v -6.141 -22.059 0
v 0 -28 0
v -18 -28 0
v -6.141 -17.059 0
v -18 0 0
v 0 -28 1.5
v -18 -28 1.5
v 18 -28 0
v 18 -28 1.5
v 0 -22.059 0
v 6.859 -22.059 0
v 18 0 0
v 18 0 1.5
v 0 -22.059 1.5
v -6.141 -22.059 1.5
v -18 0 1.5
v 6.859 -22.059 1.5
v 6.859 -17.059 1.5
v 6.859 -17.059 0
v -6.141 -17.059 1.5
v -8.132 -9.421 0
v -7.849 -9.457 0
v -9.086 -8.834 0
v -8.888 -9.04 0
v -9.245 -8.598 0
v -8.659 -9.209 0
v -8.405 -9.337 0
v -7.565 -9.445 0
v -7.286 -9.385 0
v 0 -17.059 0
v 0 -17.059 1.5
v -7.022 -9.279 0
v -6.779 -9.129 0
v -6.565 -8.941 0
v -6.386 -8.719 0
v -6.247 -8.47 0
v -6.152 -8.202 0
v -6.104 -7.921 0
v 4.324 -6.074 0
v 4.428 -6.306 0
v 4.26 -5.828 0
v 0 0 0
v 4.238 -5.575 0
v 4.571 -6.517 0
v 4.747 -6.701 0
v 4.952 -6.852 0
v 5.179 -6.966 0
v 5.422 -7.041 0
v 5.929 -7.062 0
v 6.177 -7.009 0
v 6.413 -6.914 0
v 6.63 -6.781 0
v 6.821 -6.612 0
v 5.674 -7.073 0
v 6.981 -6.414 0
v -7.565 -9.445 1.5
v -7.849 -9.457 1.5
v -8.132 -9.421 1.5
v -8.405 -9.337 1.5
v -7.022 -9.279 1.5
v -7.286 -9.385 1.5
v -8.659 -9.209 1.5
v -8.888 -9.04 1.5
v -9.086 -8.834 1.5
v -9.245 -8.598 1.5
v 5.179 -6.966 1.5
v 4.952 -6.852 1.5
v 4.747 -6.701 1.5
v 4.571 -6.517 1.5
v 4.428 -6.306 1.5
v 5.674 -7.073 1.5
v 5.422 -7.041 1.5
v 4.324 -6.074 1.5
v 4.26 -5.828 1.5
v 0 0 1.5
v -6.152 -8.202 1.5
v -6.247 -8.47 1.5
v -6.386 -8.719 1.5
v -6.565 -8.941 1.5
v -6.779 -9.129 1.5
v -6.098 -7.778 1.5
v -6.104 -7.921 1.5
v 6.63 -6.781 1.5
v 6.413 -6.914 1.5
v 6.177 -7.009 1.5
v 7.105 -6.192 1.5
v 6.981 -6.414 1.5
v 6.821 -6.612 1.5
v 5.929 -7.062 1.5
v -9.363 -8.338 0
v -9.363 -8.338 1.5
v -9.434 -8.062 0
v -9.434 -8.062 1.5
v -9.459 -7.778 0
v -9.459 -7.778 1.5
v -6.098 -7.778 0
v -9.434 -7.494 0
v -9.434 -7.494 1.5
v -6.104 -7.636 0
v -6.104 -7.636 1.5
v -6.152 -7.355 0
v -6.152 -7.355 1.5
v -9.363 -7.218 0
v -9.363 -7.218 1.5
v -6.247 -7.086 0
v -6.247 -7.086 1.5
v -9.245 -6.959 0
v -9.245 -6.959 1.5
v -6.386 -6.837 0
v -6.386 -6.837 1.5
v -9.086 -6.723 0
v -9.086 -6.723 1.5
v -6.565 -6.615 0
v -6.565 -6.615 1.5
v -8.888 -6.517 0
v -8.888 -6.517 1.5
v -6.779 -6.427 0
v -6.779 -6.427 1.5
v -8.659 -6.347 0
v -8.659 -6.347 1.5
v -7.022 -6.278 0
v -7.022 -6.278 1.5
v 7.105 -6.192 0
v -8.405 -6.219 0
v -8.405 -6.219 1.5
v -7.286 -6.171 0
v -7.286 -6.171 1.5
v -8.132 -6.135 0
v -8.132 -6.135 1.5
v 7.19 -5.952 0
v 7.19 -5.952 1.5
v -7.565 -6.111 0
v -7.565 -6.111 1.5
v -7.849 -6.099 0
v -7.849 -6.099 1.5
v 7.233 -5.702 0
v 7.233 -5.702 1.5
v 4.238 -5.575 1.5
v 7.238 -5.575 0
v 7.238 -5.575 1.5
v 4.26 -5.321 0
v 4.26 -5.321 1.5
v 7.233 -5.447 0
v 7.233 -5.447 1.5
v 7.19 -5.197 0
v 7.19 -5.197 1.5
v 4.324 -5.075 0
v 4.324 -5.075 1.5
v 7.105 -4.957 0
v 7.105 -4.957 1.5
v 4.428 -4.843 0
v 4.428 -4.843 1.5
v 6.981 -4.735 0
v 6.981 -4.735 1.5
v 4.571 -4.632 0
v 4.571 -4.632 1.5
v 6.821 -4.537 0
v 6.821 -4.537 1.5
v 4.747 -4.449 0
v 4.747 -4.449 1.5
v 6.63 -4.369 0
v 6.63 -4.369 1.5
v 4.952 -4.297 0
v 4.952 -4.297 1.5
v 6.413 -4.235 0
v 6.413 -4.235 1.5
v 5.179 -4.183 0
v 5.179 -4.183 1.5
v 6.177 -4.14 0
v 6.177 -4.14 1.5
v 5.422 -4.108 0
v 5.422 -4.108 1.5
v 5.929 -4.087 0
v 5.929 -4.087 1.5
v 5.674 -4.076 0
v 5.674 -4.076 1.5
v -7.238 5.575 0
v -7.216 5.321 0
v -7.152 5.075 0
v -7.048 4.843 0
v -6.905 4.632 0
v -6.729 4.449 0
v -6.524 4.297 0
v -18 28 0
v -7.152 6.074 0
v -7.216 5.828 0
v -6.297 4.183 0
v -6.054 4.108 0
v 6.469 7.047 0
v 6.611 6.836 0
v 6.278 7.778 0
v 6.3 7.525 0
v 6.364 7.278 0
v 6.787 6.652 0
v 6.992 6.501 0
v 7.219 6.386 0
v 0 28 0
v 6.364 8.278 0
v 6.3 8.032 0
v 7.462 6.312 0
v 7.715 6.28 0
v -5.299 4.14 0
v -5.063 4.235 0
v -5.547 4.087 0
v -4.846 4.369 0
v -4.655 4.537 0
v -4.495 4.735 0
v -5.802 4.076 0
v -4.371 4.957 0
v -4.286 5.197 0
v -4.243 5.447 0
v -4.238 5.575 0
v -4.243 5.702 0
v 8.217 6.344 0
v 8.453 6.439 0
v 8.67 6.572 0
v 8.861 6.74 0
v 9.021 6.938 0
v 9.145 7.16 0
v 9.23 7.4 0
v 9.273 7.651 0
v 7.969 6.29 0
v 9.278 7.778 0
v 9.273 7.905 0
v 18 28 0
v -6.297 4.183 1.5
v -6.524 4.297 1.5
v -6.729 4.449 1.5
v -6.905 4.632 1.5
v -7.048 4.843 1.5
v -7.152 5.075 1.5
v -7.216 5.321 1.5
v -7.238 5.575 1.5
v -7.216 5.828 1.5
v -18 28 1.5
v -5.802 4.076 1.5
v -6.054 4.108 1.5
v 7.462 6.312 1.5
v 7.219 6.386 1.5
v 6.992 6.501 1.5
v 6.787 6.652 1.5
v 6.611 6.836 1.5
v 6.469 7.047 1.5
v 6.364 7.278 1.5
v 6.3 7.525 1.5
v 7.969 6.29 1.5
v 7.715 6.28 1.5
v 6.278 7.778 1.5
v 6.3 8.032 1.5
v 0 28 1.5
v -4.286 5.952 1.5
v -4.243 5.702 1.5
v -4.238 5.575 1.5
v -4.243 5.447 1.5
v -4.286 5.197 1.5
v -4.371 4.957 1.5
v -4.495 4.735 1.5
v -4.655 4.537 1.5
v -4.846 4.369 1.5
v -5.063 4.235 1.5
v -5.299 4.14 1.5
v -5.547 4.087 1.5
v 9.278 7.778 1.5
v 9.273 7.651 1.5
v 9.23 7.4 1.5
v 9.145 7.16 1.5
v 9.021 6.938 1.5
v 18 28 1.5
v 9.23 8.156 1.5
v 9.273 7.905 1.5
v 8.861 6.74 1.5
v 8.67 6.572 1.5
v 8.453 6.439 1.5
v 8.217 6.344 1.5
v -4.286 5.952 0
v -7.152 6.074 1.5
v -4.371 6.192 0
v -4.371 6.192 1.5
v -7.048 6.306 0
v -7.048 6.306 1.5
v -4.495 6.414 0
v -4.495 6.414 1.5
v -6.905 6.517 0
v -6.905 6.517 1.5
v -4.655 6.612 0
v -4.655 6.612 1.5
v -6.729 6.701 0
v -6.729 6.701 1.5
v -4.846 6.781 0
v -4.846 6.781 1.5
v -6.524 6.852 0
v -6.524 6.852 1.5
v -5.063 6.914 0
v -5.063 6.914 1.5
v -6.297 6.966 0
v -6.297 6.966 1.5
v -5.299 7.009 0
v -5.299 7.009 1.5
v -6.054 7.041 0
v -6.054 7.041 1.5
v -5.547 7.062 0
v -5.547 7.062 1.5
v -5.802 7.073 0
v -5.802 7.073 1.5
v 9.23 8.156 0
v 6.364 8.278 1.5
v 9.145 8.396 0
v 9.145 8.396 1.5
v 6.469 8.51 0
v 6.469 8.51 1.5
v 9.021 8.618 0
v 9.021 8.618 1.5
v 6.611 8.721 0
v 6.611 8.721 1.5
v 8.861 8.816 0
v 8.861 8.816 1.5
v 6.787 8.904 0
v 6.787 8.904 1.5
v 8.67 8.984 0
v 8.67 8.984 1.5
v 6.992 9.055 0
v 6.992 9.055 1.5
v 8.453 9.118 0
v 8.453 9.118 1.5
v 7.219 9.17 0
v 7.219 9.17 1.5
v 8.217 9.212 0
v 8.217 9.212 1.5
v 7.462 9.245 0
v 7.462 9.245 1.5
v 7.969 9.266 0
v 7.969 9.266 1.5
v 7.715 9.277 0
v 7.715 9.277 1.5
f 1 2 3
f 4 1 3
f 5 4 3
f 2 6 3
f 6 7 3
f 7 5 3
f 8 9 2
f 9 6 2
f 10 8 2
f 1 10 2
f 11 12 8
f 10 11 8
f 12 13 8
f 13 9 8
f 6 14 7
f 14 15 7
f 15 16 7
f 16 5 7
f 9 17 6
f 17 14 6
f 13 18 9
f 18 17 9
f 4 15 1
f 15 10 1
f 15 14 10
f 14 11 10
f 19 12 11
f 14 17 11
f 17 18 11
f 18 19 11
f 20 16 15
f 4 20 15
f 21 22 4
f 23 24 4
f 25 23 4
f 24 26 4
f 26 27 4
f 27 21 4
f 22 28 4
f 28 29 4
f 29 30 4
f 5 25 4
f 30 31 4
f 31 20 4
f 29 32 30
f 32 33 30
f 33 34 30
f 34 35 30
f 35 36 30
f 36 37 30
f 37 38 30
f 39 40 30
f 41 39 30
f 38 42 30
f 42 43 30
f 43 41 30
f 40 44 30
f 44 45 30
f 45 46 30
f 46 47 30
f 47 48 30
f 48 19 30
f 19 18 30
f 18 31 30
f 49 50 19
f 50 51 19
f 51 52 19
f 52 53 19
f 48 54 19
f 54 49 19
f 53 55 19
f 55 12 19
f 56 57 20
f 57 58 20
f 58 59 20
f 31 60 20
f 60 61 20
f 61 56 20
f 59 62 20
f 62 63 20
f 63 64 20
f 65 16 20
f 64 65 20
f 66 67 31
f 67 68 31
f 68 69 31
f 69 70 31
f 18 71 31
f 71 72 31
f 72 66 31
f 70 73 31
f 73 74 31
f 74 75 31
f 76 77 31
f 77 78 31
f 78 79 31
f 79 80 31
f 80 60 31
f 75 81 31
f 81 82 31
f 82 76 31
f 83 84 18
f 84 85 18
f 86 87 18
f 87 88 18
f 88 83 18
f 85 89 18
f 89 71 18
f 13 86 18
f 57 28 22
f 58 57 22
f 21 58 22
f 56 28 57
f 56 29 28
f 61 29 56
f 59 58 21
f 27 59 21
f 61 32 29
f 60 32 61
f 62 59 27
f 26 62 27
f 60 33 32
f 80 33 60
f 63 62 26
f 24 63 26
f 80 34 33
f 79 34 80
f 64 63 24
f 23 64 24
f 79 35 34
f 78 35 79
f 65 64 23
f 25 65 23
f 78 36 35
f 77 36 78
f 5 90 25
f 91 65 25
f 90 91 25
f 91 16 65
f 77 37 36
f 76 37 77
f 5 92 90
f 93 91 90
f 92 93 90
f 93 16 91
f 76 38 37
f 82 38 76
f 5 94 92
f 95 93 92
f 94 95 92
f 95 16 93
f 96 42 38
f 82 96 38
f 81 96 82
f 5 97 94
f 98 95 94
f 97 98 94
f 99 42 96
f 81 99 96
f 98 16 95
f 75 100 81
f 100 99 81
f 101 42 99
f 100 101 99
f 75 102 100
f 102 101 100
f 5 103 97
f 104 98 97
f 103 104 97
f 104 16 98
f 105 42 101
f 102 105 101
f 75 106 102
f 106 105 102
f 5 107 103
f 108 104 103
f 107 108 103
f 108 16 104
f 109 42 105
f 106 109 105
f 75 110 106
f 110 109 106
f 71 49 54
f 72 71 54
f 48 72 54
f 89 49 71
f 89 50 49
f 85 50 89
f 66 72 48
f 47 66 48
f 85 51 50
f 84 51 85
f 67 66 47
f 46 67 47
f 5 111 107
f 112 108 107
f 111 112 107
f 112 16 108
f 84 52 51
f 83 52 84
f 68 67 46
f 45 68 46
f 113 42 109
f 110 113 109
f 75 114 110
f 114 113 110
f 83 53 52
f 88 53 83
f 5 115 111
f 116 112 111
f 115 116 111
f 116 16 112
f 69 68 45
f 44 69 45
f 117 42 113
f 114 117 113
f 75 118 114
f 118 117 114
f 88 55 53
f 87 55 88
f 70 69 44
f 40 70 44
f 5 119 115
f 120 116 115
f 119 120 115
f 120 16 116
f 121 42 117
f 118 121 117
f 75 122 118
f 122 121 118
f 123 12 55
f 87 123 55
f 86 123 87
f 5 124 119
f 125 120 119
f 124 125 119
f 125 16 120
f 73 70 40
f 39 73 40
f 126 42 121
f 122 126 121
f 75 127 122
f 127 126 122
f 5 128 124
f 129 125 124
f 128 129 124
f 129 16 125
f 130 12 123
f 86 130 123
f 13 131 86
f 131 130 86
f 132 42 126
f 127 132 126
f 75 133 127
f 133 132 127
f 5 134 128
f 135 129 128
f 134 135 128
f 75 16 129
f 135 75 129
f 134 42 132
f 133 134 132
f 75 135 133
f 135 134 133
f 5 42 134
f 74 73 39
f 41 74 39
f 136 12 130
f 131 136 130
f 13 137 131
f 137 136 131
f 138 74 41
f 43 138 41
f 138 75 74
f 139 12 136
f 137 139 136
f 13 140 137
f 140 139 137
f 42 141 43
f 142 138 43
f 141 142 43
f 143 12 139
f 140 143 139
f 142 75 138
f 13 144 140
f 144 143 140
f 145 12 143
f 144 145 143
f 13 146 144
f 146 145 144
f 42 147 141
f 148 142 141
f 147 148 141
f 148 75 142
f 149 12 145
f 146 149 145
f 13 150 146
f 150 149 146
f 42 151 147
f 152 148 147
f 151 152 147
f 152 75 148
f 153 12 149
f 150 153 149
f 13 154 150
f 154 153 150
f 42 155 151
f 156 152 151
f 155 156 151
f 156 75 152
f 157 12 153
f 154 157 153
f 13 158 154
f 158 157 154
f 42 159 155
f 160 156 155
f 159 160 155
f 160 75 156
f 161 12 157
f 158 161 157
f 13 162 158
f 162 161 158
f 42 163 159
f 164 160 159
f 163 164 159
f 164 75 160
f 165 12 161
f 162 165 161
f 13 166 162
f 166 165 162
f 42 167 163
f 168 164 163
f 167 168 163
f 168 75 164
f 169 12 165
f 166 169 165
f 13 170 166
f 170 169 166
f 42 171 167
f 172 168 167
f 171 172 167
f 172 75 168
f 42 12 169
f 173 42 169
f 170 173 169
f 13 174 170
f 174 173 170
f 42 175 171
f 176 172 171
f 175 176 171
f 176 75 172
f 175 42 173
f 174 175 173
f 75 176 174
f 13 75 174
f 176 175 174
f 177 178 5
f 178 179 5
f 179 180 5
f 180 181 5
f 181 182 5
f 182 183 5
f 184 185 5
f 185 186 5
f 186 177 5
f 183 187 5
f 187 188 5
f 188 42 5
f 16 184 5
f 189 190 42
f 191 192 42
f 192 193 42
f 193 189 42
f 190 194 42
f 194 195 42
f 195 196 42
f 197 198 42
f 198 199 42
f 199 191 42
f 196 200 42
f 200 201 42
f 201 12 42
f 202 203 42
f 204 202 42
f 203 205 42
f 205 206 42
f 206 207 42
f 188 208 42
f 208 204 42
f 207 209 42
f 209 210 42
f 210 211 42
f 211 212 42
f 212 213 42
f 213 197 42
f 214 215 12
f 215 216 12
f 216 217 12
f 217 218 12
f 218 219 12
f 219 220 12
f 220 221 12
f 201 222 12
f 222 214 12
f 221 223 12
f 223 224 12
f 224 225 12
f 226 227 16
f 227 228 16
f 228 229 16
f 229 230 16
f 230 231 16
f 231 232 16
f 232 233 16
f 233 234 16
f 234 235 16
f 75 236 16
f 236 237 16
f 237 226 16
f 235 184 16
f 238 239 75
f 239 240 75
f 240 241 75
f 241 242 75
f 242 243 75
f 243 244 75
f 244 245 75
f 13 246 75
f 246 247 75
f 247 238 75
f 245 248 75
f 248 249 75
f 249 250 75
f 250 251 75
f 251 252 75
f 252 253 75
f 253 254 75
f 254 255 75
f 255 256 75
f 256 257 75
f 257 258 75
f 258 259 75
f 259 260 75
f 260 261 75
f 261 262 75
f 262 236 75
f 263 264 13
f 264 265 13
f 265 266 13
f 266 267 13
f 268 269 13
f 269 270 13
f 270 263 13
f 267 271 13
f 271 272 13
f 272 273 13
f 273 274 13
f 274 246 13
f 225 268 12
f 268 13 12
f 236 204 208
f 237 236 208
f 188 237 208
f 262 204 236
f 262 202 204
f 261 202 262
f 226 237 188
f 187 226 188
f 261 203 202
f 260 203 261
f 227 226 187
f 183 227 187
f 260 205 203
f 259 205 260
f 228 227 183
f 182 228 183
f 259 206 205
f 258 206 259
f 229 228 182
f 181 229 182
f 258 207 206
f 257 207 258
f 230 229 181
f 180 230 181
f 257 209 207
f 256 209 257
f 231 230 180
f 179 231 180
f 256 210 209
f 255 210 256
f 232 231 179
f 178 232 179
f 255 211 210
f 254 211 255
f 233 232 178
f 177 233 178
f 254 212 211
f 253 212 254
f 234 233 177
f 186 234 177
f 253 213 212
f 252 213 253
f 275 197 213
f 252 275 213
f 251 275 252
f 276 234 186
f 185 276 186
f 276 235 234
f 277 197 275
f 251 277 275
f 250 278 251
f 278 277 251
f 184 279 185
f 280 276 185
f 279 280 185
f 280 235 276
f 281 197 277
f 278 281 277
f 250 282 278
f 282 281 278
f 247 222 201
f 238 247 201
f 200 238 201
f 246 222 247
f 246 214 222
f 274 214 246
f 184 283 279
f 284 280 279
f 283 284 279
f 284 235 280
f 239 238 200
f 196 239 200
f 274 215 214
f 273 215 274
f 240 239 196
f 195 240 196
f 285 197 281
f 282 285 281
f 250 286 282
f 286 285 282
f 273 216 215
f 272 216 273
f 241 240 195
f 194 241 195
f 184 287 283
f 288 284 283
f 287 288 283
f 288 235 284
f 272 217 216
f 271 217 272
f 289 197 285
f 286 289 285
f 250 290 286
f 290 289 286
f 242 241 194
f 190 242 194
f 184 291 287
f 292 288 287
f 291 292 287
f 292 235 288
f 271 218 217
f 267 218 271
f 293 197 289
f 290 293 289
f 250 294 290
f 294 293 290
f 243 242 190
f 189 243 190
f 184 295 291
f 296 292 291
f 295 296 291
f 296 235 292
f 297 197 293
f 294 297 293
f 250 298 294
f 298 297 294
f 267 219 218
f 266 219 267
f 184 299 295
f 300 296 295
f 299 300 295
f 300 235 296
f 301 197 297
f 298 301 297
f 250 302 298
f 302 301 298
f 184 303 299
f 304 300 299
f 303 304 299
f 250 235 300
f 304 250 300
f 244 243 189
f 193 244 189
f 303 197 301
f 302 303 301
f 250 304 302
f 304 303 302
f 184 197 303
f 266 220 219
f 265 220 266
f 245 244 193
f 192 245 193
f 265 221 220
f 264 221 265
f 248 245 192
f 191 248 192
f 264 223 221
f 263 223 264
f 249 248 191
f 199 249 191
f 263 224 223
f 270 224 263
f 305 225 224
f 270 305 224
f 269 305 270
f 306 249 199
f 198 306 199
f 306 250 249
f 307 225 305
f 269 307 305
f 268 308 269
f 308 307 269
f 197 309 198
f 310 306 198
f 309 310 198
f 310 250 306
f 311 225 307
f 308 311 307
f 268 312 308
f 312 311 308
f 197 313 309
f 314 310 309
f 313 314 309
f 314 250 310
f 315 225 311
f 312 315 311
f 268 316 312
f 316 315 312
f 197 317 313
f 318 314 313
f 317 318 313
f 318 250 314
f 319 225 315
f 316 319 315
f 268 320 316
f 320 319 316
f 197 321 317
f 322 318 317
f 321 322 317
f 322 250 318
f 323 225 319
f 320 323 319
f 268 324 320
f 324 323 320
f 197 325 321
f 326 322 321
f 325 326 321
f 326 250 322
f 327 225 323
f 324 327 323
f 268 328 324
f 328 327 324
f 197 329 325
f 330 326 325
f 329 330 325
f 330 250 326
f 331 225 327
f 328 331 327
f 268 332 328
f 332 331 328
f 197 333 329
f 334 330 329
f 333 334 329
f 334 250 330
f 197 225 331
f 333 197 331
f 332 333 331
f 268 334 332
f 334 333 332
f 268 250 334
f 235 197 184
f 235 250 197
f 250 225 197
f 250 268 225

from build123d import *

# Parameters (mm, degrees)
SKETCH1_R           = 1.5
SKETCH1_R_2         = 1.680409227
SKETCH1_W           = 13
SKETCH1_H           = 5
BOSS_EXTRUDE3_DEPTH = 1.5


with BuildPart() as part:
    # Sketch1 → Boss-Extrude3 (new body)
    with BuildSketch(Plane.XY):
        Polygon((-18, 0), (-18, 28), (18, 28), (18, -28), (-18, -28), align=None)
        with Locations((7.778174593, 7.778174593)):
            Circle(SKETCH1_R, mode=Mode.SUBTRACT)
        with Locations((-5.73801436, 5.574512642)):
            Circle(SKETCH1_R, mode=Mode.SUBTRACT)
        with Locations((-7.778174593, -7.778174593)):
            Circle(SKETCH1_R_2, mode=Mode.SUBTRACT)
        with Locations((5.73801436, -5.574512642)):
            Circle(SKETCH1_R, mode=Mode.SUBTRACT)
        with Locations((0.358519309, -19.559341262)):
            Rectangle(SKETCH1_W, SKETCH1_H, mode=Mode.SUBTRACT)
    extrude(amount=BOSS_EXTRUDE3_DEPTH)


solid = part.part
